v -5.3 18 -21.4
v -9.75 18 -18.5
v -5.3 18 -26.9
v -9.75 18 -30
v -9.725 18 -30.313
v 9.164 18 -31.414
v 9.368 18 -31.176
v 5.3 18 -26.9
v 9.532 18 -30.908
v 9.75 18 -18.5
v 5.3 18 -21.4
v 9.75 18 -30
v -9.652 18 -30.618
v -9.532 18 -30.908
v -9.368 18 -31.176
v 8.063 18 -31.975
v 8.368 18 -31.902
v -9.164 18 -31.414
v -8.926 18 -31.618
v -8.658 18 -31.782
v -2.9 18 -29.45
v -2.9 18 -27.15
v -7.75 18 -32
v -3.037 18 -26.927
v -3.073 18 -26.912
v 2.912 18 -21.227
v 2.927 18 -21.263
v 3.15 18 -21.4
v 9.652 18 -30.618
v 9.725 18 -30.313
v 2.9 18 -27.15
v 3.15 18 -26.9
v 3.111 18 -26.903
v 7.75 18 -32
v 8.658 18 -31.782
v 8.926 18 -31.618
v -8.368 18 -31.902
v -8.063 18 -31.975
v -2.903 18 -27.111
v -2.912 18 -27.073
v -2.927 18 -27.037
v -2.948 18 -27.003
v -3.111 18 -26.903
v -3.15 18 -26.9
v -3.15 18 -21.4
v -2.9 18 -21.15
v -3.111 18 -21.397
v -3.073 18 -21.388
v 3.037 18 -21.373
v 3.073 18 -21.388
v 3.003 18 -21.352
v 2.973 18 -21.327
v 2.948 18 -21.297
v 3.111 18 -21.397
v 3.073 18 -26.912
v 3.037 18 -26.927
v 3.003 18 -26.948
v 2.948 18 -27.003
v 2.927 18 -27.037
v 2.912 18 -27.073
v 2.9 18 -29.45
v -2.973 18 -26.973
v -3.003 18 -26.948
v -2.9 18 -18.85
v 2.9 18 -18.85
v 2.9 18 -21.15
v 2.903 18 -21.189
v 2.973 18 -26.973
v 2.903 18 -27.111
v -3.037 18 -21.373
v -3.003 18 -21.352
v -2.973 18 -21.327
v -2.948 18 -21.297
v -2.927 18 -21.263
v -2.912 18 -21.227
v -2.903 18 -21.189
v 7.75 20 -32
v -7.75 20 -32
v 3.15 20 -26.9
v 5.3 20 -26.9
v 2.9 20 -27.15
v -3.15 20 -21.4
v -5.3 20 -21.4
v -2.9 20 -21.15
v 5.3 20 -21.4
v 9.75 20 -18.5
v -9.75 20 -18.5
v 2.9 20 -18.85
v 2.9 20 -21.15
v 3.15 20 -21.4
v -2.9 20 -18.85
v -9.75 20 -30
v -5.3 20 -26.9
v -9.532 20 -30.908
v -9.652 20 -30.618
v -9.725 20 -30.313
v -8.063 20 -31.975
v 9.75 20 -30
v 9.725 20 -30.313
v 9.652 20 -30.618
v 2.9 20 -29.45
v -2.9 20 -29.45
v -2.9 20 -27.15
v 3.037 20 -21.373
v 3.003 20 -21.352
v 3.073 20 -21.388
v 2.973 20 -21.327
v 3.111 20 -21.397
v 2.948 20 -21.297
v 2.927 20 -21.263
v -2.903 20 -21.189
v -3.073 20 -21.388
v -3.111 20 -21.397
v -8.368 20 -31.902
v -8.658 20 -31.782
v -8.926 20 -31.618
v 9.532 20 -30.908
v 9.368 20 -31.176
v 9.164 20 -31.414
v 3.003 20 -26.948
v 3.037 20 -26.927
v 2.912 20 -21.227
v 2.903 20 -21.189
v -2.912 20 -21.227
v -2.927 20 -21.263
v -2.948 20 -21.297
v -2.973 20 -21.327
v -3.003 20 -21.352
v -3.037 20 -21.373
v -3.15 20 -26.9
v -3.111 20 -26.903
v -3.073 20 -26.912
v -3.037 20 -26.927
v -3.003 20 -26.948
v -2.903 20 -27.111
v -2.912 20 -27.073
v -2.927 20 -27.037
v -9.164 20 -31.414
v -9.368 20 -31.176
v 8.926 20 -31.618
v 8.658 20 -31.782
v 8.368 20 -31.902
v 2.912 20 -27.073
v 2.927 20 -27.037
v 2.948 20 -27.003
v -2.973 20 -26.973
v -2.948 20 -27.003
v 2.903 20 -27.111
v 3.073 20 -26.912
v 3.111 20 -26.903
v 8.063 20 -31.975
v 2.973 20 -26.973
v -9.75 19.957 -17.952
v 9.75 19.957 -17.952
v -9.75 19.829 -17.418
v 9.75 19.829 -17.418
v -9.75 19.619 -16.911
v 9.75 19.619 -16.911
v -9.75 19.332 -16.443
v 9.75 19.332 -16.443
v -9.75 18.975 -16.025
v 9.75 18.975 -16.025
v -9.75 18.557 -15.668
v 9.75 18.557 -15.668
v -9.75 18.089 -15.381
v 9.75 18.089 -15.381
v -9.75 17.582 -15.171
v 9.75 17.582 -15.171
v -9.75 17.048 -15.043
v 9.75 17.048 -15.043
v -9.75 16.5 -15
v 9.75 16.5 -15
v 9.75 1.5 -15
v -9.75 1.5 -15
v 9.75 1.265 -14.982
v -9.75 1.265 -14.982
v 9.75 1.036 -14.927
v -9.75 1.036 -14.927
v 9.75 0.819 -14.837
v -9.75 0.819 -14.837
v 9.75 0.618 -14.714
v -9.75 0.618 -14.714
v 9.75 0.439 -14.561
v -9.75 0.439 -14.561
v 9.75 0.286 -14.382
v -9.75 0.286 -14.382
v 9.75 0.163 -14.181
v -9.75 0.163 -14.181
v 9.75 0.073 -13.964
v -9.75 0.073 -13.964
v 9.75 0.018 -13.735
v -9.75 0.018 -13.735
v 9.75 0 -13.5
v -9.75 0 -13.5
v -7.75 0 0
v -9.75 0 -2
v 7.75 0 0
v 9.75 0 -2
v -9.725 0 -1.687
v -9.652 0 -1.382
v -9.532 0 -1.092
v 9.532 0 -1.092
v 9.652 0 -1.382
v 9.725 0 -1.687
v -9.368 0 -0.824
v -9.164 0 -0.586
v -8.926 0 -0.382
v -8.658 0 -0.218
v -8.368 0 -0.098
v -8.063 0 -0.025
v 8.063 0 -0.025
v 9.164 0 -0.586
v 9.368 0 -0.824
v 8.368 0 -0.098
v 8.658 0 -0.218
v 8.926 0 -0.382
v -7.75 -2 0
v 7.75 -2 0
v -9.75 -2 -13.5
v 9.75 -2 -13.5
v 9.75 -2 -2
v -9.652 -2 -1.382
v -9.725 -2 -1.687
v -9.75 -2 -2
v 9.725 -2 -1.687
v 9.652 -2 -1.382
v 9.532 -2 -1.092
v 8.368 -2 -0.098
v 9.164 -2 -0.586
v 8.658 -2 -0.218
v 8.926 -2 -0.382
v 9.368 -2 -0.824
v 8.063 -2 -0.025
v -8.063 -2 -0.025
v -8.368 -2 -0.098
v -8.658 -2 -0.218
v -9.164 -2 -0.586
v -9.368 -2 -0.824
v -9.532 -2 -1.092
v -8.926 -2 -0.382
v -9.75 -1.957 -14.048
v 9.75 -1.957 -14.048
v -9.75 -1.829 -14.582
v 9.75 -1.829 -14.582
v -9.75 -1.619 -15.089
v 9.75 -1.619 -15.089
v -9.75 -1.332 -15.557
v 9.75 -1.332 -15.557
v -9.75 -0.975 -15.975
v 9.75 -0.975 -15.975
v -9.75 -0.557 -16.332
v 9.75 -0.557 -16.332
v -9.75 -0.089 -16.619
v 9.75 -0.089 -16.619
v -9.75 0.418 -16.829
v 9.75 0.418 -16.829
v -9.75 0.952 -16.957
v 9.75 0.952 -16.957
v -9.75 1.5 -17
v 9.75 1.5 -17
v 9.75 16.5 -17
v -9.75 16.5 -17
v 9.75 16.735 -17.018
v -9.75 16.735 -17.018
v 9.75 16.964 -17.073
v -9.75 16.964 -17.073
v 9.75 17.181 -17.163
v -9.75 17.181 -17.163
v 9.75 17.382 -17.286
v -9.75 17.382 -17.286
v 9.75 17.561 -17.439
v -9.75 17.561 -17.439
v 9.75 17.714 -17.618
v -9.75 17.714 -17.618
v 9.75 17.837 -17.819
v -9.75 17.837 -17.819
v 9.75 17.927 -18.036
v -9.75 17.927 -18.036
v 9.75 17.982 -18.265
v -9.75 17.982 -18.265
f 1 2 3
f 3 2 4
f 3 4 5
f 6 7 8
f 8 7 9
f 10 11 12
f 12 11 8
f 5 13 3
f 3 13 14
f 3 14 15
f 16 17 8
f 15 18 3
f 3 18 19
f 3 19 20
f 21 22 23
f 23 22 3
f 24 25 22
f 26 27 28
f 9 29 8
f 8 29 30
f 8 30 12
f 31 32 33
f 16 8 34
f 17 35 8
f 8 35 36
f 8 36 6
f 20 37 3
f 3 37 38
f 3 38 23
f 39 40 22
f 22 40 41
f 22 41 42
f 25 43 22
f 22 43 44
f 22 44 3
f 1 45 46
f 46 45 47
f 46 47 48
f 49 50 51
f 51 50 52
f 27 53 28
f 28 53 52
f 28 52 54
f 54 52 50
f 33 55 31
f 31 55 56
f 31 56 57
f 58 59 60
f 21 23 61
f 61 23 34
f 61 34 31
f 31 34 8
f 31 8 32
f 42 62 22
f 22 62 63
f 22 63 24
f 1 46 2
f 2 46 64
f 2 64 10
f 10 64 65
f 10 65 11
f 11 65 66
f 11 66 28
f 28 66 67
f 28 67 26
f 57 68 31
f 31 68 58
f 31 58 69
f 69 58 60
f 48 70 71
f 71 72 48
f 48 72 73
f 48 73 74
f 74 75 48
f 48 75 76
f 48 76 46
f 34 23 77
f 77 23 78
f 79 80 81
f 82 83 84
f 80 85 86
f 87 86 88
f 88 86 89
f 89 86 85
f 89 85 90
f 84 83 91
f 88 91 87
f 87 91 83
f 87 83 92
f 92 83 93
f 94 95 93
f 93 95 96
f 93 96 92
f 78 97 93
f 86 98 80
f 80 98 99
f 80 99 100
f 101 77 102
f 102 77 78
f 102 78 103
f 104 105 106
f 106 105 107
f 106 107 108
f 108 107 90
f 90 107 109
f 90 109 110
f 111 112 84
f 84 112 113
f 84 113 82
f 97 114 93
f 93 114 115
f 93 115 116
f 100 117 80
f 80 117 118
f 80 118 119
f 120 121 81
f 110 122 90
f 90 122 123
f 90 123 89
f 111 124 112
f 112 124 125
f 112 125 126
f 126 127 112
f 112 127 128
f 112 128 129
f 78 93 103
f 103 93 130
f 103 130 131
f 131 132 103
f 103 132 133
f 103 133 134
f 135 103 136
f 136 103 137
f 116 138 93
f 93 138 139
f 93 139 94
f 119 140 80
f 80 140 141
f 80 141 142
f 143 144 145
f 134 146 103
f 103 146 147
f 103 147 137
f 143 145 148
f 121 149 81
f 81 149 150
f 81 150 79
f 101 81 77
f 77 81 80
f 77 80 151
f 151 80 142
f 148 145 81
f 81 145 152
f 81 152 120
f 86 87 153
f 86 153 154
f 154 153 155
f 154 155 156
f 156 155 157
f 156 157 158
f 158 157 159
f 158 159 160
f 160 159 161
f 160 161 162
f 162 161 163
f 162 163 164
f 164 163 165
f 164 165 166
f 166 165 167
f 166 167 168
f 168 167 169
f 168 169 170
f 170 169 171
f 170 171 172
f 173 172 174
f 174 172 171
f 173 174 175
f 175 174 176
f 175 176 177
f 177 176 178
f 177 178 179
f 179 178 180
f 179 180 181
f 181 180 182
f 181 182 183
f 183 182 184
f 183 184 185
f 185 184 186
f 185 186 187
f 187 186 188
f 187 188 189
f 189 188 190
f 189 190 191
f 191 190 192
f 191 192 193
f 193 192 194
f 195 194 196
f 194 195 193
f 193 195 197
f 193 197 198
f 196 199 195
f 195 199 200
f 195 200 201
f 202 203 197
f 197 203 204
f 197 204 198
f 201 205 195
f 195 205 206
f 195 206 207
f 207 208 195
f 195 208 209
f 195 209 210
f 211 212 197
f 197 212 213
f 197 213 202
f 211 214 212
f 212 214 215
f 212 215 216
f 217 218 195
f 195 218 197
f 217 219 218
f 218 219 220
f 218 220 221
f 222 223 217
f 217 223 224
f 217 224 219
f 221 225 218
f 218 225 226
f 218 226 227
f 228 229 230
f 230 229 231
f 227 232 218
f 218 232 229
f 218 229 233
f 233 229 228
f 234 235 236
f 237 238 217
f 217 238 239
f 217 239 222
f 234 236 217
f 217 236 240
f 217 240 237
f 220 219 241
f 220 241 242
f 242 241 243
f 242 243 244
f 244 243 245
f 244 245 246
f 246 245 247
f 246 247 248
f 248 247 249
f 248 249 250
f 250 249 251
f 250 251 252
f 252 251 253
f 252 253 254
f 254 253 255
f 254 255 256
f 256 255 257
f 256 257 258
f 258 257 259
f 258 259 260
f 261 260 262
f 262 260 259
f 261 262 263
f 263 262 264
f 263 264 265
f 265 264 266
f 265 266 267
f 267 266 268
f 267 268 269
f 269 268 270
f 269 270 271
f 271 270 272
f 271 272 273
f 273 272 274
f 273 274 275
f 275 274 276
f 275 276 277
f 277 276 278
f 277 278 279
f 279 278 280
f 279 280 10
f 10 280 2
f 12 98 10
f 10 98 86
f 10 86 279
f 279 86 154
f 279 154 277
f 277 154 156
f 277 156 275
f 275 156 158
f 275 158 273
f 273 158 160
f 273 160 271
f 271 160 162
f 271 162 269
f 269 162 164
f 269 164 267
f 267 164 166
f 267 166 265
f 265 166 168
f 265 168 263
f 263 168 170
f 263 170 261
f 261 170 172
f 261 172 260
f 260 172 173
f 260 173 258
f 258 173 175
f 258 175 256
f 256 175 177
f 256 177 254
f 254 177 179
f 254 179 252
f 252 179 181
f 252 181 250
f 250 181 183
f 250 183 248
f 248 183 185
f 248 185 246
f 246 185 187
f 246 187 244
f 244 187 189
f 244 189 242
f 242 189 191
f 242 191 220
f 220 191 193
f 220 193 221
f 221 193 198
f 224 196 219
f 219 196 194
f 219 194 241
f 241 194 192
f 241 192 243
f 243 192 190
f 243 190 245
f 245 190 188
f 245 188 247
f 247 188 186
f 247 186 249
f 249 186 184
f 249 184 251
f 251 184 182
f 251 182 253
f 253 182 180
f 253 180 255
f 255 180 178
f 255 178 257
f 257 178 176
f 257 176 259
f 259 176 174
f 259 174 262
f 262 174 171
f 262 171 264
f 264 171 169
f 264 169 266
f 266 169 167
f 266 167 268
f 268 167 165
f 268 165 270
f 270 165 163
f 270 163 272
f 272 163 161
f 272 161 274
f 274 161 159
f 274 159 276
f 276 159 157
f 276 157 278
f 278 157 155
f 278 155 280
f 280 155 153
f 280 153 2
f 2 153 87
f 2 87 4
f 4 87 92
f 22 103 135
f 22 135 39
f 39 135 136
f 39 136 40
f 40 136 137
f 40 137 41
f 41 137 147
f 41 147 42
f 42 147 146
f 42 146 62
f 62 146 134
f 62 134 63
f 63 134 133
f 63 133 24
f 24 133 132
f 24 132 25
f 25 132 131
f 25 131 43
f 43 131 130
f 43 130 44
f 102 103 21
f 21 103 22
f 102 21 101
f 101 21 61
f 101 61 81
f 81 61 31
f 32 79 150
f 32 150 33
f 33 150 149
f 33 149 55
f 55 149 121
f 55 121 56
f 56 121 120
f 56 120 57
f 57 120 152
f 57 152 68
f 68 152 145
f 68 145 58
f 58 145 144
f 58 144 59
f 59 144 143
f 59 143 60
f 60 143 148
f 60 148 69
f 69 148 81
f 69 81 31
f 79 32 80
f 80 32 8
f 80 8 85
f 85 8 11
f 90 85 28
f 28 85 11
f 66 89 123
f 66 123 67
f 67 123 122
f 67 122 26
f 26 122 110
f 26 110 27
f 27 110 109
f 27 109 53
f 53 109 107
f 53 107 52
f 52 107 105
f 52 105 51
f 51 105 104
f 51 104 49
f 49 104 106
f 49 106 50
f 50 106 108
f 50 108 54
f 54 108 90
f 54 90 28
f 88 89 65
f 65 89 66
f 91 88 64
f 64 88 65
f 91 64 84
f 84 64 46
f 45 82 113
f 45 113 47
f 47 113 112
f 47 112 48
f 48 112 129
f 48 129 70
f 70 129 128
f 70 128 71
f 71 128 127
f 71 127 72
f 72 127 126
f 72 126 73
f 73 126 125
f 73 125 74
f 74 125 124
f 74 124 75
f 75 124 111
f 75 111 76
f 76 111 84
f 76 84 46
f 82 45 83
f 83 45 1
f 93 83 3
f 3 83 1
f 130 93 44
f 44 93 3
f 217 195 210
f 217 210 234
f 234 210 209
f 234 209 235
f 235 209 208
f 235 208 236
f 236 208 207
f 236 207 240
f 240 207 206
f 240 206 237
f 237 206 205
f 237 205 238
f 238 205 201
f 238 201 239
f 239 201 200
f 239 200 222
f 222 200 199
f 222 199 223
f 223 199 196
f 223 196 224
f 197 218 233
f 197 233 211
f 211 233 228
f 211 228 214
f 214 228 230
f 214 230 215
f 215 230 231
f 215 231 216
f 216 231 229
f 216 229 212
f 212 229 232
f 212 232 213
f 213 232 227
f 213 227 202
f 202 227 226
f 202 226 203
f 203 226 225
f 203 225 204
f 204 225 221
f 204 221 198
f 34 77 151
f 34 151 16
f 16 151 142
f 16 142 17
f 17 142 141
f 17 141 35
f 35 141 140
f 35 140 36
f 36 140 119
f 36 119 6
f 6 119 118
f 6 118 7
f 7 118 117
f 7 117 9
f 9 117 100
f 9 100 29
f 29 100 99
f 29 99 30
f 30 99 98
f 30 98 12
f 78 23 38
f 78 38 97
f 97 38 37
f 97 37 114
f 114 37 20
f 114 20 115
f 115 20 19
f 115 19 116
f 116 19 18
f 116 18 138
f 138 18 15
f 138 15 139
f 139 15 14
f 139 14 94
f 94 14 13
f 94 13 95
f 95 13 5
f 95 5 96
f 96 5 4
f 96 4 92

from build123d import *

# Parameters (mm, degrees)
EXTRUDE_THIN1_DEPTH = 9.75
CUT_EXTRUDE1_DEPTH  = 2
FILLET2_R           = 2


with BuildPart() as part:
    # Sketch1 → Extrude-Thin1 (new, symmetric)
    with BuildSketch(Plane(origin=(0, 0, 0), x_dir=(0, 0, -1), z_dir=(1, 0, 0))):
        with BuildLine():
            Line((0, 0), (13.5, 0))
            ThreePointArc((13.5, 0), (14.560660172, 0.439339828), (15, 1.5))
            Line((15, 1.5), (15, 16.5))
            ThreePointArc((15, 16.5), (16.025126266, 18.974873734), (18.5, 20))
            Line((18.5, 20), (32, 20))
            Line((32, 20), (32, 18))
            Line((32, 18), (18.5, 18))
            ThreePointArc((18.5, 18), (17.439339828, 17.560660172), (17, 16.5))
            Line((17, 16.5), (17, 1.5))
            ThreePointArc((17, 1.5), (15.974873734, -0.974873734), (13.5, -2))
            Line((13.5, -2), (0, -2))
            Line((0, -2), (0, 0))
        make_face()
    extrude(amount=EXTRUDE_THIN1_DEPTH, both=True)

    # Sketch2 → Cut-Extrude1 (cut)
    with BuildSketch(Plane(origin=(0, 20, 0), x_dir=(1, 0, 0), z_dir=(0, 1, 0))):
        with BuildLine():
            Line((-2.9, 29.45), (2.9, 29.45))
            Line((2.9, 29.45), (2.9, 27.15))
            ThreePointArc((2.9, 27.15), (2.973223305, 26.973223305), (3.15, 26.9))
            Line((3.15, 26.9), (5.3, 26.9))
            Line((5.3, 26.9), (5.3, 21.4))
            Line((5.3, 21.4), (3.15, 21.4))
            ThreePointArc((3.15, 21.4), (2.973223305, 21.326776695), (2.9, 21.15))
            Line((2.9, 21.15), (2.9, 18.85))
            Line((2.9, 18.85), (-2.9, 18.85))
            Line((-2.9, 18.85), (-2.9, 21.15))
            ThreePointArc((-2.9, 21.15), (-2.973223305, 21.326776695), (-3.15, 21.4))
            Line((-3.15, 21.4), (-5.3, 21.4))
            Line((-5.3, 21.4), (-5.3, 26.9))
            Line((-5.3, 26.9), (-3.15, 26.9))
            ThreePointArc((-3.15, 26.9), (-2.973223305, 26.973223305), (-2.9, 27.15))
            Line((-2.9, 27.15), (-2.9, 29.45))
        make_face()
    extrude(amount=-CUT_EXTRUDE1_DEPTH, mode=Mode.SUBTRACT)

    # Fillet2
    fillet2_edges = [part.edges().sort_by_distance(p)[0] for p in [
        (-9.75, -1, 0),
        (-9.75, 19, -32),
        (9.75, -1, 0),
        (9.75, 19, -32),
    ]]
    fillet(fillet2_edges, radius=FILLET2_R)


solid = part.part
